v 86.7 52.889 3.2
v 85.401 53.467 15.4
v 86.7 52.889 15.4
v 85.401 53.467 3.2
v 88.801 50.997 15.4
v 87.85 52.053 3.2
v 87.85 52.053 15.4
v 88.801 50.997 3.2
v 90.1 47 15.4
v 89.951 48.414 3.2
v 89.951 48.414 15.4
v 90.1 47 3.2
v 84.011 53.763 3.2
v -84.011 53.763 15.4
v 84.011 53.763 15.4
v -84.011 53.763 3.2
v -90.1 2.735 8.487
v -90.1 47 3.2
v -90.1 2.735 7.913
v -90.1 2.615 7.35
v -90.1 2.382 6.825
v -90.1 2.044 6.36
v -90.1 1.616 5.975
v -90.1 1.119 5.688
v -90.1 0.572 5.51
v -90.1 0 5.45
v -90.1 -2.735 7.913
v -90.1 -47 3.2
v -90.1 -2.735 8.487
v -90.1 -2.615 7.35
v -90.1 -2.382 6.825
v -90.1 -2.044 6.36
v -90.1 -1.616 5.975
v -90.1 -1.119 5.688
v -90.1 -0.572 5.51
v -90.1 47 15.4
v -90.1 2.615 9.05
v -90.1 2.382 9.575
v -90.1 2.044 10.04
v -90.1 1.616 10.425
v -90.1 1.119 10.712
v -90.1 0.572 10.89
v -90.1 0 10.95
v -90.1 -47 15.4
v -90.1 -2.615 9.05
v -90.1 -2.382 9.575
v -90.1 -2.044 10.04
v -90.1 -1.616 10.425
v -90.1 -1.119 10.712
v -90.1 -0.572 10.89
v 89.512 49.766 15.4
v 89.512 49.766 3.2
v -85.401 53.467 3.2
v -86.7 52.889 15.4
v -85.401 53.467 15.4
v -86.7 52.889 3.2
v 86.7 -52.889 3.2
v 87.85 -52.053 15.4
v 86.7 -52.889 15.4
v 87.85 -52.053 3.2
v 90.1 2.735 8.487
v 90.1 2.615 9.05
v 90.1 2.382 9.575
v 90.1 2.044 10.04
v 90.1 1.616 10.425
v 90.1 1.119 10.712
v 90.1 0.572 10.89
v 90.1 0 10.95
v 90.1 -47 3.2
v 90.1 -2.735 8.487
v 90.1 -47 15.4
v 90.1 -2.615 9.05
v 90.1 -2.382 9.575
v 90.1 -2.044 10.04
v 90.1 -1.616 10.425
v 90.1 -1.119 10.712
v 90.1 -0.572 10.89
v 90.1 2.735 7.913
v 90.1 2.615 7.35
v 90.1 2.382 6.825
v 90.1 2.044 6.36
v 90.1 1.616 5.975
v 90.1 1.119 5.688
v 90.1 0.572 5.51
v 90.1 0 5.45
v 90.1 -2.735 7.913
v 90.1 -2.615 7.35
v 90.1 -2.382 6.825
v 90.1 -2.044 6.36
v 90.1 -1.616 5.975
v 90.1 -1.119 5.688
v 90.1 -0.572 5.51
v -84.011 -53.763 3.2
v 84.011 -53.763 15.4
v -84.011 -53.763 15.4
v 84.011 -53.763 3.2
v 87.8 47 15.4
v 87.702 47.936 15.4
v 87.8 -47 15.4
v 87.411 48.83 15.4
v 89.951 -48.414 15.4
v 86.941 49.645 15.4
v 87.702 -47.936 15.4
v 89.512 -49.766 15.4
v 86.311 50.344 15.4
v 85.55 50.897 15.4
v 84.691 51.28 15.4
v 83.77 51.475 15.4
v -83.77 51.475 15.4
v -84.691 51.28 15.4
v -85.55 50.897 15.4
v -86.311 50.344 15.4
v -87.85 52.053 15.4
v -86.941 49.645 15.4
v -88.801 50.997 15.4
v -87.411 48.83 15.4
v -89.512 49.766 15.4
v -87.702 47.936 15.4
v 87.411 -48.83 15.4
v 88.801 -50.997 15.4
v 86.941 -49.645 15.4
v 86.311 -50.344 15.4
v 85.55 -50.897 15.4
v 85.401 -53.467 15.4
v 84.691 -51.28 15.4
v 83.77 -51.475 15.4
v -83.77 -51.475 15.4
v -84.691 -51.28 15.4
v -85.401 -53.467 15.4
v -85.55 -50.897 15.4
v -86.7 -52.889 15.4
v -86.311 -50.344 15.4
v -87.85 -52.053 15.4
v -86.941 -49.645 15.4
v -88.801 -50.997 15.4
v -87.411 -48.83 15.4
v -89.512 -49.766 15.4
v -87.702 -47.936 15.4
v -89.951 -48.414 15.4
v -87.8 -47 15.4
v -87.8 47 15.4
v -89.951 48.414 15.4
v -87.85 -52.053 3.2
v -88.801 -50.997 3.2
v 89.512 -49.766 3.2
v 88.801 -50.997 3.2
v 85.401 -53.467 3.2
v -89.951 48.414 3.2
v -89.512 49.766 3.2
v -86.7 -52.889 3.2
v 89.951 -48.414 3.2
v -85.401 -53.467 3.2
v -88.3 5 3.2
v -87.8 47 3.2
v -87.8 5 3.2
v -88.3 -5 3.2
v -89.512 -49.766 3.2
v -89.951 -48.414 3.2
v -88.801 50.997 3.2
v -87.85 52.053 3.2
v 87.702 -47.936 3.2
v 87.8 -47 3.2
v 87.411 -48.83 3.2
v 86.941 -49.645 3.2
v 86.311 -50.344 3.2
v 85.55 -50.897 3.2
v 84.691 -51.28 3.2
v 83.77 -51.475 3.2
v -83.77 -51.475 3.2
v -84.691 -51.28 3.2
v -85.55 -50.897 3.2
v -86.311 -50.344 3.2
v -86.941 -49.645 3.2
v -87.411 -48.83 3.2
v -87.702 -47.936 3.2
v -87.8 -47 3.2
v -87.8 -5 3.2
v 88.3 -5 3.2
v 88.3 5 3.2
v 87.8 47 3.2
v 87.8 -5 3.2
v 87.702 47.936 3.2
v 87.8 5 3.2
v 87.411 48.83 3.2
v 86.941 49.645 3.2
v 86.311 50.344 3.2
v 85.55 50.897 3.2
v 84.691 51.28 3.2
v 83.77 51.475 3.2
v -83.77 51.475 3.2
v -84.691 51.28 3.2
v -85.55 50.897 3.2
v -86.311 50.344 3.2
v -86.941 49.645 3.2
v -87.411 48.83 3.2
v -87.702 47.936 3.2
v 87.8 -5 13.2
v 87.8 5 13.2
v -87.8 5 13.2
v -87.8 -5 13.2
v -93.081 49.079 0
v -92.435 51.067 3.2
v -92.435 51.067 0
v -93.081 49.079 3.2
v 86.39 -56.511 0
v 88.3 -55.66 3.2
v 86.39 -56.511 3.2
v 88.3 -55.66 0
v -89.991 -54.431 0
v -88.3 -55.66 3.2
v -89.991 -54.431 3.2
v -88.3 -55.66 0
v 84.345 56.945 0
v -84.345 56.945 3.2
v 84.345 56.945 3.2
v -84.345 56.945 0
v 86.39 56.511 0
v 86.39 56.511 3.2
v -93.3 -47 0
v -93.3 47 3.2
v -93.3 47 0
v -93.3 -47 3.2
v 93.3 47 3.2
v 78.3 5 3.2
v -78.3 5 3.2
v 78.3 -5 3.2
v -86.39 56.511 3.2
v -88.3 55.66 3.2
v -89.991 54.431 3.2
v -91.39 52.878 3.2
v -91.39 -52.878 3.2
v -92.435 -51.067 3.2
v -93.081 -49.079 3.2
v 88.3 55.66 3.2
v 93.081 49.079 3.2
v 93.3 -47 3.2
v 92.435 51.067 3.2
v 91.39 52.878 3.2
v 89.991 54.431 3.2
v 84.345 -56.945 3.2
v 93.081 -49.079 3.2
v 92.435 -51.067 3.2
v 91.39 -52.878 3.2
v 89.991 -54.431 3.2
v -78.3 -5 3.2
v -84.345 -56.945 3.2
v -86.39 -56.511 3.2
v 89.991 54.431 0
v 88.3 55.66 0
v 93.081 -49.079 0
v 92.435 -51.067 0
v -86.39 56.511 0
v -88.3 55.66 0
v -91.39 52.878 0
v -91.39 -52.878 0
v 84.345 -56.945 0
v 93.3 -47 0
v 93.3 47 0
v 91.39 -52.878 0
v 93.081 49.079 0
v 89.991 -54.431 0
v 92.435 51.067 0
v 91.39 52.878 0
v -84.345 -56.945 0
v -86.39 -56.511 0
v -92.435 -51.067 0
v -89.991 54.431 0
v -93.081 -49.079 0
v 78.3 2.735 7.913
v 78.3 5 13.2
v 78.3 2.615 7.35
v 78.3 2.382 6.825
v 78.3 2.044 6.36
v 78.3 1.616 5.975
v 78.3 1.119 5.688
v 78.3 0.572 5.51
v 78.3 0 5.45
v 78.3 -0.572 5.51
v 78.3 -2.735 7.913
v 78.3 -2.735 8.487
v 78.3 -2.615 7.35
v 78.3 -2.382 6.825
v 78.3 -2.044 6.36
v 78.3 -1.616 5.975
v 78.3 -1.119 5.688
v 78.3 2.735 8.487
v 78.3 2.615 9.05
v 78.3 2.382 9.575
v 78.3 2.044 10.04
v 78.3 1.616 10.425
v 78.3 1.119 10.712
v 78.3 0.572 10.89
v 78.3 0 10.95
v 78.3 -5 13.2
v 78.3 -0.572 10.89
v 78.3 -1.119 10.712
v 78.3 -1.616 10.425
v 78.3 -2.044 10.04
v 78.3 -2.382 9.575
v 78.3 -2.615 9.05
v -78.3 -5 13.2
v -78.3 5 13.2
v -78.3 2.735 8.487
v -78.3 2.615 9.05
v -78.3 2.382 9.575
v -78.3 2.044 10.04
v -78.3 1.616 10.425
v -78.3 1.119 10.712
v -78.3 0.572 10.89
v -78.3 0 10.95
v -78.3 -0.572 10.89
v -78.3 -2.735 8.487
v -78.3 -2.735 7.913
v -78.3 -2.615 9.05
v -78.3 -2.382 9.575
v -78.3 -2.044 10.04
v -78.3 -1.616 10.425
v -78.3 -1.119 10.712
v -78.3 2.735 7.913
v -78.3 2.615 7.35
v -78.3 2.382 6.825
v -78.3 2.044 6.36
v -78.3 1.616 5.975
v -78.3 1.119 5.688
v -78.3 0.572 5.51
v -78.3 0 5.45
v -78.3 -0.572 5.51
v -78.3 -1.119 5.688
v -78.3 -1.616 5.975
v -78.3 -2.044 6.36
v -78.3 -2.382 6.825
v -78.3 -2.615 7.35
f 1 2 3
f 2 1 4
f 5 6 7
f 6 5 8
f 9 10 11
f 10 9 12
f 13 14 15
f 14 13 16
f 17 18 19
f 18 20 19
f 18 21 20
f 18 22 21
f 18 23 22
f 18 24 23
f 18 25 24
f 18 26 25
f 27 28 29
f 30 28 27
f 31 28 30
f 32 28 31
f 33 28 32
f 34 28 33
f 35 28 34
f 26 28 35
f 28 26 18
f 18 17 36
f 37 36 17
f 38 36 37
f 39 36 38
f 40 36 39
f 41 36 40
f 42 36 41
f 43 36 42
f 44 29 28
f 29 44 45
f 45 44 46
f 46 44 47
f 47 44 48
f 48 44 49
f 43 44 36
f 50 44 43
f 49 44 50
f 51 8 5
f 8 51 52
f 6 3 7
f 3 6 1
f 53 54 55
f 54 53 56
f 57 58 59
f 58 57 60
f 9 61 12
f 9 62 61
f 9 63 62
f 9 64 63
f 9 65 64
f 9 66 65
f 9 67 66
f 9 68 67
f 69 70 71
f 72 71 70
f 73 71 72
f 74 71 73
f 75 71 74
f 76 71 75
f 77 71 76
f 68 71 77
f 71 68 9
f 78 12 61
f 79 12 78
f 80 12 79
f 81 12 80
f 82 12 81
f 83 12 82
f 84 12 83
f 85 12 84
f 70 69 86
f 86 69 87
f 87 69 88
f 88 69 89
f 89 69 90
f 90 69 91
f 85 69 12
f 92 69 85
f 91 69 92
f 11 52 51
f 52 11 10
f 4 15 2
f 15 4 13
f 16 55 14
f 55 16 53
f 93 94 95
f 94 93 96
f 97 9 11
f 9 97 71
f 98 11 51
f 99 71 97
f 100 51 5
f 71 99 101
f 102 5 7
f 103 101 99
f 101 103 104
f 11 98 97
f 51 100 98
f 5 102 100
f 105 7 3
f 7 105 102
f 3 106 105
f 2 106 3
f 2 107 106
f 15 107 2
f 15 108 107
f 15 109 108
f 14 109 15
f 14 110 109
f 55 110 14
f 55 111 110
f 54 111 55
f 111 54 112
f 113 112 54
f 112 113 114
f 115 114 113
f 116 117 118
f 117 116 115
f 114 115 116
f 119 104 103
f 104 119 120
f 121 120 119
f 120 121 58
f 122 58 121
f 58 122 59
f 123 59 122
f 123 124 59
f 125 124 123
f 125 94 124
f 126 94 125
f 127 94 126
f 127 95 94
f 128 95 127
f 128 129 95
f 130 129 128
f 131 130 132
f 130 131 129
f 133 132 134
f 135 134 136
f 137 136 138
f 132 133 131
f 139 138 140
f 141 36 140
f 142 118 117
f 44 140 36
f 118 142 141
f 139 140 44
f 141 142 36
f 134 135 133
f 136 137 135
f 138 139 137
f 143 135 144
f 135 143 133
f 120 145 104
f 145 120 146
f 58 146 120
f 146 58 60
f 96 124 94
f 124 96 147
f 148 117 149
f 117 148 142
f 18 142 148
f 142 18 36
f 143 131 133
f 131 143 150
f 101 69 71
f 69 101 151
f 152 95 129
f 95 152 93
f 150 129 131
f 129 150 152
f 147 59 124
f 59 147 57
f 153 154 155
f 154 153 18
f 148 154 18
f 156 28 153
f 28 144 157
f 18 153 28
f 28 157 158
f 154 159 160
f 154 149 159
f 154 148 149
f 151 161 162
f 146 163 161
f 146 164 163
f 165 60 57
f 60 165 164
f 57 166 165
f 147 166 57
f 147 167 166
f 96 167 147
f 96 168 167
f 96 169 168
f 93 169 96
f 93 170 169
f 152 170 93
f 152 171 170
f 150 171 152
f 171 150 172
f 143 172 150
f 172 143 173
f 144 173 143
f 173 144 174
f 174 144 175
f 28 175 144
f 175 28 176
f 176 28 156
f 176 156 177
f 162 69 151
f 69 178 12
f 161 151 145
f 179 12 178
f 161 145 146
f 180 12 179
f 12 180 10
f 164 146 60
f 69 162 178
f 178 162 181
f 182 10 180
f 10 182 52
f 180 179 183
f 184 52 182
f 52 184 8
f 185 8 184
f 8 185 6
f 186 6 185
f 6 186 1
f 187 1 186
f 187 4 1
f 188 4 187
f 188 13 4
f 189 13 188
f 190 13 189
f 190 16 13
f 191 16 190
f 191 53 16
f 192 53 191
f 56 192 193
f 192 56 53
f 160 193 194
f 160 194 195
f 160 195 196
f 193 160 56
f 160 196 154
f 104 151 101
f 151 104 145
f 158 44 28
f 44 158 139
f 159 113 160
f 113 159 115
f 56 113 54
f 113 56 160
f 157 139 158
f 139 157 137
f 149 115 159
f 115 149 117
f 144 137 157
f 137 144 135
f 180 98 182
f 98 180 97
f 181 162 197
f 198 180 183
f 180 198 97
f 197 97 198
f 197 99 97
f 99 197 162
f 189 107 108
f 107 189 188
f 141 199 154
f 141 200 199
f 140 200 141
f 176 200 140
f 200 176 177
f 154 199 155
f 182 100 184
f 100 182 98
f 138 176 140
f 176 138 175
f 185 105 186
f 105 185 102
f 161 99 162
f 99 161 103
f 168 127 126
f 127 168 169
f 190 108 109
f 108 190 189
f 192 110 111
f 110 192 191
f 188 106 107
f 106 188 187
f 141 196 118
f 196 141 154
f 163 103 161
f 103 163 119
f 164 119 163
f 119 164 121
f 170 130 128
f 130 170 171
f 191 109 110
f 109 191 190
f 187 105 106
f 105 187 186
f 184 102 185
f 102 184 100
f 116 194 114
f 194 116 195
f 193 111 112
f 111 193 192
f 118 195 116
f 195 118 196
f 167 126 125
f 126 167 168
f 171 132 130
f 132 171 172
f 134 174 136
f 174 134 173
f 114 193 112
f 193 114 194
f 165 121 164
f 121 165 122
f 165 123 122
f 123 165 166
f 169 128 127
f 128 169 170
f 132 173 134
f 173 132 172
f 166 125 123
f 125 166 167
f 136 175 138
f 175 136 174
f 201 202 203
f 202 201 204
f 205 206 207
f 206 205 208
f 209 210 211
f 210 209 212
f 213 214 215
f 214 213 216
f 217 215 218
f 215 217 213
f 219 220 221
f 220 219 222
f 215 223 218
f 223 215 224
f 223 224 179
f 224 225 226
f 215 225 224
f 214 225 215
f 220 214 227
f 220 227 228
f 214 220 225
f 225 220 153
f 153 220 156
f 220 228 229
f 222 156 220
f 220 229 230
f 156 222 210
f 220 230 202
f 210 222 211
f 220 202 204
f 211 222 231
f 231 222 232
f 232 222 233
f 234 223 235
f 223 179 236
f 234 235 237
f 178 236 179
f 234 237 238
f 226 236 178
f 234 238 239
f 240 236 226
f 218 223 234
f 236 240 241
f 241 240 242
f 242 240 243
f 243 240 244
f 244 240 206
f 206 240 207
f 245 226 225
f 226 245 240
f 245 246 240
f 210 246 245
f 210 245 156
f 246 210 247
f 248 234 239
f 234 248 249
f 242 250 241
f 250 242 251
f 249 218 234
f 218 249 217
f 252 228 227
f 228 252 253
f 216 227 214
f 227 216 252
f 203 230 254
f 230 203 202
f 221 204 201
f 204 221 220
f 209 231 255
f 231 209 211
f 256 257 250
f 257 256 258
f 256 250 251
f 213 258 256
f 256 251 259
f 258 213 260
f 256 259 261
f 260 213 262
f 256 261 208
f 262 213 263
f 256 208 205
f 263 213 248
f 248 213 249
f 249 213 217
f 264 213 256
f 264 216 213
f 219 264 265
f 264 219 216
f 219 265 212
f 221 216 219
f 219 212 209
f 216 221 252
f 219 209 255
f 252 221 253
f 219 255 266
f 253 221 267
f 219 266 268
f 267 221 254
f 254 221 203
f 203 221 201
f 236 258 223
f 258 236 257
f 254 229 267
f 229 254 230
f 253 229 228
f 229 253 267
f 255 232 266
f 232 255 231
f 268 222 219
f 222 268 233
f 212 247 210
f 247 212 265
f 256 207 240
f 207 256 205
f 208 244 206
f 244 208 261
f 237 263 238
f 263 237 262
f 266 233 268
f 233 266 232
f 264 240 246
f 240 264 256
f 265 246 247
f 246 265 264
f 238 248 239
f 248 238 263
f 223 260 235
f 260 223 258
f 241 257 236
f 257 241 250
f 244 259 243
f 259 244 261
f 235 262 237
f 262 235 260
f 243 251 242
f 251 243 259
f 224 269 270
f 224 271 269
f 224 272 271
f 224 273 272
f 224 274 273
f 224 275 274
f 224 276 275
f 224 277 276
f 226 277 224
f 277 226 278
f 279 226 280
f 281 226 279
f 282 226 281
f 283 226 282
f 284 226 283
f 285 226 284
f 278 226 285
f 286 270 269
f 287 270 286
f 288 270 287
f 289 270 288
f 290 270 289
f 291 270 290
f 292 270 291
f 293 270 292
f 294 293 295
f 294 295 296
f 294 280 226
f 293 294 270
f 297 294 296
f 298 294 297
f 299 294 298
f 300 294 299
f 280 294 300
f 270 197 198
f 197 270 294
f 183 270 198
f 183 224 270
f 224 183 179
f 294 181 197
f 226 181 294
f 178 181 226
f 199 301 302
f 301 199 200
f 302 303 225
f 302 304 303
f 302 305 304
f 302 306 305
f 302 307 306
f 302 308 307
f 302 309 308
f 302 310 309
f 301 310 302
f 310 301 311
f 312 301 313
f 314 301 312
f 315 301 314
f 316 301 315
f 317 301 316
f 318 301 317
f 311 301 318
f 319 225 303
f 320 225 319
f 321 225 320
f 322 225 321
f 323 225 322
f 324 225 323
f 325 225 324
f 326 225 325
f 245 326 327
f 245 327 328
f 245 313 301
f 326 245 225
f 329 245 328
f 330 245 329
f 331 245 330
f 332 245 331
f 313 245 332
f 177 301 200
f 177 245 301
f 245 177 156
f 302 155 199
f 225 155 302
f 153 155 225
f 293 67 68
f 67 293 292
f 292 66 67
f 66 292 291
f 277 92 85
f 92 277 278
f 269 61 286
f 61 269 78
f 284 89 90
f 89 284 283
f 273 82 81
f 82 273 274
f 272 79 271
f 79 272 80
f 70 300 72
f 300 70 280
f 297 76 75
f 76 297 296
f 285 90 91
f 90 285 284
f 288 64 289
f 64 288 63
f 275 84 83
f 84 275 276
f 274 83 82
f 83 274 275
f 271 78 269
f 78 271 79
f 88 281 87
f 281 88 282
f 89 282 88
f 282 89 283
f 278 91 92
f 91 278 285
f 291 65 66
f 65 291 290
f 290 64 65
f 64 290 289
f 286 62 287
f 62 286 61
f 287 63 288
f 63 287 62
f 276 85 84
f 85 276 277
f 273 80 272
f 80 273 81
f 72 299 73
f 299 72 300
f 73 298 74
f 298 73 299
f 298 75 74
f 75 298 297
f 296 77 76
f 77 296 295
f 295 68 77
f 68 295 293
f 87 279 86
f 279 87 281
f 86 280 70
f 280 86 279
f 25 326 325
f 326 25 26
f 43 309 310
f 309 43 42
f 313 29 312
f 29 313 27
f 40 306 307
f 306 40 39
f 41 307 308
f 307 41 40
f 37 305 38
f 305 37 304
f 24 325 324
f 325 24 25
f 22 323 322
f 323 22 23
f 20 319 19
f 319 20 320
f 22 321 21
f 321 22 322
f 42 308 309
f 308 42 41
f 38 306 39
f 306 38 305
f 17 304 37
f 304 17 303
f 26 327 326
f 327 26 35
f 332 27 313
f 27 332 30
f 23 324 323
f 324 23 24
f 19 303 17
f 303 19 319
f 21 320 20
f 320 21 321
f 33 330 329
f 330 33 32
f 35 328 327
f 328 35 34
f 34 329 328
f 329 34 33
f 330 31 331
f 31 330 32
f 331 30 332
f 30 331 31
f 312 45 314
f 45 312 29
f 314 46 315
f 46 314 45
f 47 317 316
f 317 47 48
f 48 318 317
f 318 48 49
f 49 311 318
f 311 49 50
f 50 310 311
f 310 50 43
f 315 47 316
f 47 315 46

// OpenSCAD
// file: DMM_Back_Block.scad
include <BoxCommon.scad>;
$fs=.01;
// This is going to look upside down because of
// coordinate system for the board is from the front.
// Whereas this view is from the back. Its all
// flipped on the x axis.


BlockSZ=[54+10,8,5.5]; //  Of the board holders

// Locate the connectors on the back of the board
BRD_Center_X=53.34/2; // from either edge.
PWR_Center_X=BRD_Center_X-8.38; // Offset from center
USB_Center_X=BRD_Center_X-38.1;  // to center

USB_SZ=[13,12,50];
PWR_SZ=[10,12,50];



// Use these modules with the same translate parameters
module DMM_Back_U() // Really, just the cpu.
{  

    
   translate([0,-BlockSZ.y/2,BlockSZ.z/2]) cube(BlockSZ,center=true);
   
}
module DMM_Back_D()
{
    translate([0,0,panelDim.z])
    {
                     // The board is centered on 0,0 and 0 above z
        translate([0,-4,20/2])
         {
             cube([CPU_BOARD_X, CPU_BOARD_Y,20],center=true);
             translate([USB_Center_X,-USB_SZ.y/2,0])
                cube(USB_SZ,center=true);
             translate([PWR_Center_X,-PWR_SZ.y/2,0])
                cube(PWR_SZ,center=true);         }
      }

    
}
difference()
{
     union(){
        cylinder(r=1,h=50);
        DMM_Back_U();
     }
    DMM_Back_D();
    translate([0,-50,0]) cube([50,50,30]);
}
// file: Bezel.scad
// Draw a window in a panel with an angled opening.
// The passed size is the back/inside opening.
// The front of the hole will be grown according to the
// trig calculation and the thickness.
// A suggested thickness is 3.5-4mm

// Place this in a difference() block with other holes in the 
// panel.
// Translate as needed.  Include a small -z to clean up the hole
// in the rendering.
module Bezel(size)
{
    
    bx=size.x;  // Size of the cutout
    by=size.y;
    bz=size.z; // Thk at bezel
    bang=60;  // Angle at the bezel
    be=bz/tan(bang);

    
    
    bp=[[-bx/2-be,-by/2-be,0],[-bx/2-be,by/2+be,0],
        [bx/2+be,by/2+be,0],[bx/2+be,-by/2-be,0],
        [-bx/2,-by/2,bz],[-bx/2,by/2,bz],
        [bx/2,by/2,bz],[bx/2,-by/2,bz]];
    
    bf=[[3,2,1,0],[4,5,6,7],[0,4,7,3],[5,1,2,6],[0,1,5,4],[3,7,6,2]];   
    
    
    polyhedron(bp,bf,3);

}

module BezelTest()
{
    // the opening should be slightly thicker and lower
    // than the surrounding panel for the display.
    panel=[100,50,4];
    opening=[80,40,4.01];
    
    difference()
    {
        translate([0,0, panel.z/2])
            cube(panel,center=true);
        translate([0,0,-.005])
            Bezel(opening);
    }
}

BezelTest();
// file: MK_Panel.scad
// Pull this file in with use<>

include <BoxCommon.scad>



// innerPanel => the size of the panel at the origin of
// the outer radii

// panel=> the x/y/z size of the panel extents
// lip => z of lip above the panel
// RO,RL,RI => the outer most, middle, and inner most radius

module dressPanel(panel,lipHt, RO,RL,RI)
{
    innerPanel=[panel.x-RO*2, panel.y-RO*2,panel.z-1];
    
    // Virtually center the panel on the origin
    translate([-innerPanel.x/2,-innerPanel.y/2,0])
    {
        minkowski()
        {
            cube(innerPanel,center=false);
            cylinder(r=RO,h=1);
        }

        translate([0,0,panel.z])
        {
            difference()
            {
                minkowski()
                {
                    cube(innerPanel,center=false);
                    cylinder(r=RL,h=lipHt);
                }
                minkowski()
                {
                    cube(innerPanel,center=false);
                    cylinder(r=RI,h=lipHt+1);
                }
            }
        }
    }
}

module outerShell(panel, RO,RL)
{
    ht2=panel.z/2;
    innerPanel=[panel.x-RO*2, panel.y-RO*2,ht2];
    
    // Virtually center the panel on the origin
    translate([-innerPanel.x/2,-innerPanel.y/2,0])
    {

        difference()
        {
            minkowski()
            {
                cube(innerPanel,center=false);
                cylinder(r=RO,h=ht2);
            }
            translate([0,0,-.5])
            minkowski()
            {
                cube(innerPanel,center=false);
                cylinder(r=RL,h=ht2+1);
            }
        }
    }
}

module testDressPanel()
{   
    R=15;
    
    difference()
    {
        dressPanel([60,40,4],6,R,R-3,R-6);
        cube([100,100,20]);
    }
}

module testOuterShell()
{

R=15;
    
    difference()
    {
        outerShell([60,40,20],R,R-2);
        cube([100,100,20]);
    }
}
//testDressPanel();
testOuterShell();
// file: BoxCommon.scad
// Sum array members:
function suma(array,start,end) =
    (start==end)
    ? array[start]
    : suma(array, start+1, end) + array[start];
function e(clear,o) =// Add clear to demensions of o
     (is_list(clear)) ?
        [o.x+clear.x,o.y+clear.y,o.z+clear.z] :
        [o.x+clear,o.y+clear,o.z+clear];

function align(mode,here,center=true)=
    [ search(mode,"eErR")?here.x:(search(mode,"wWlL")?0:here.x/2),
    search(mode,"nN")?here.y:(search(mode,"sS")?0:here.y/2),
    search(mode,"tT")?here.z:(search(mode,"bB")?0:here.z/2)]-
    (center?[here.x/2,here.y/2, here.z/2]:[0,0,0]);


module cubeXY(cc)
{
    translate([-cc.x/2,-cc.y/2, 0]) cube(cc,center=false);
}


// The size of the block that holds the display. Determines width.
DISPBLOCK=[16+50.2*3,44,15]; // Z is arbitrary at the moment

// The real size of the front panel
panelDim=[DISPBLOCK.x,DISPBLOCK.y,0]+[20,70,3.2];
lipHt=10;
outsideR=10;

// FF=Fudge Factor

DMM_BOARD_X=66 ; // 63 NO FF FROM DRAWING
DMM_BOARD_Y=3 ; // 1.6 NO FF Measured
//DMM_Center=[50,-20,0];
CPU_BOARD_X=54;
CPU_BOARD_Y=3;
CPU_BOARD_Z=102;


// Extra board locations relative to the DMM board:
CPU_Board_Loc=[0,27,6];  // Not using full width of the board
// loc is offset left to miss drilling the screw block.
IF_Board_Loc=[0,15,6];
boards=[[0,0,0],IF_Board_Loc,CPU_Board_Loc];


S_VO_OFFS=-19.08; // From drawing
S_Widths=14; // FROM Drawing
// Places 5A jack at edge of board.:
S_FUDGE=DMM_BOARD_X/2-S_Widths*2-2; 
S1=-S_Widths/2+S_FUDGE;
S0=S_VO_OFFS+S1;
S2=S_Widths/2+S_FUDGE; 
S3=S2+S_Widths;
DMM_JAX_X=[S0,S1,S2,S3];

// STack up to C/L of jack in Y - Measured terms
DMM_JAX_Y=DMM_BOARD_Y/2+4.9+5.5/2; 
DMM_JAX_LOWER_DIA=12; // Measured
DMM_JAX_UPPER_DIA=15; // Same as S_Widths
DMM_JAX_Z_OFFS=3.3 ; // How much of the lower shoulder shows.

for (i=[DMM_JAX_X])
    echo(i);
echo(DMM_JAX_Y);
// main file
// Assemble the front panel.



include <BoxCommon.scad>
use <MK_Panel.scad>
use <Bezel.scad>
use <DMM_Back_Block.scad>
//DMM_Center=[50,7,0];
$fs=.02;


// The dimensions of the front most rounded corner cube

innerPanelDim=[panelDim.x-2*outsideR,panelDim.y-2*outsideR,panelDim.z];

dmmSupportSize=[70,20,6+9];

DMM_Center=align("SE",innerPanelDim)+[-15-dmmSupportSize.x/2,dmmSupportSize.y*2+6,0];
DMM_B_Center=[-DMM_Center.x, DMM_Center.y, DMM_Center.z];
SPK_DIA=12.4;
SPK_HT=9;
SPK_Port_DIA=2.5;
SPK_HOLDER_DIA=SPK_DIA+4;

switchCenter=[-panelDim.x/4,4+-panelDim.y/4,0];
switchSz=[14,13,2];

//SPK_Center=align("W",panelDim,center=true)+ [SPK_HOLDER_DIA/2+25,3-SPK_HOLDER_DIA/2,0];
SPK_Center=[10-panelDim.x/2,switchCenter.y,0] + [SPK_HOLDER_DIA/2,0,0];
// The holder is slightly bigger
dispHolder=DISPBLOCK+[5,5,3];
dispCenter=[0,-8-DISPBLOCK.y/2+panelDim.y/2,panelDim.z];

// The bottom of the display
dispBottom=dispCenter+[0,-dispHolder.y/2,0];
*translate(dispBottom)
    cube([100,1,100],center=true);  // Show the location

// The hole in the front with the bezel
dispCut=[51*3,21,panelDim.z];



difference()
{
    union()
    {
    
        // This marks the center of the mega2560
        * translate(DMM_B_Center+[0,-4,0])color(c=[0,1,1,1]) cylinder(d=1,h=100,center=false);
        
        dressPanel(panelDim,lipHt, outsideR,outsideR-3.2,outsideR-5.5);

        // Blocks for the screws
        translate([panelDim.x/2-10,0,panelDim.z+lipHt/2]) cube([10,10,lipHt],center=true);
        translate([-panelDim.x/2+10,0,panelDim.z+lipHt/2]) cube([10,10,lipHt],center=true);
    }
    // Turn the following statement on to see a cross section
    *translate([80,-15,-1])cube(100,100,10);
    
     
    // Insert holes for the screws
    #translate([panelDim.x/2,0,panelDim.z+lipHt/2]) rotate([0,-90,0]) cylinder(h=15,d=5.5,center=false);
    #translate([-panelDim.x/2,0,panelDim.z+lipHt/2]) rotate([0,90,0]) cylinder(h=15,d=5.5,center=false);
    
   }
